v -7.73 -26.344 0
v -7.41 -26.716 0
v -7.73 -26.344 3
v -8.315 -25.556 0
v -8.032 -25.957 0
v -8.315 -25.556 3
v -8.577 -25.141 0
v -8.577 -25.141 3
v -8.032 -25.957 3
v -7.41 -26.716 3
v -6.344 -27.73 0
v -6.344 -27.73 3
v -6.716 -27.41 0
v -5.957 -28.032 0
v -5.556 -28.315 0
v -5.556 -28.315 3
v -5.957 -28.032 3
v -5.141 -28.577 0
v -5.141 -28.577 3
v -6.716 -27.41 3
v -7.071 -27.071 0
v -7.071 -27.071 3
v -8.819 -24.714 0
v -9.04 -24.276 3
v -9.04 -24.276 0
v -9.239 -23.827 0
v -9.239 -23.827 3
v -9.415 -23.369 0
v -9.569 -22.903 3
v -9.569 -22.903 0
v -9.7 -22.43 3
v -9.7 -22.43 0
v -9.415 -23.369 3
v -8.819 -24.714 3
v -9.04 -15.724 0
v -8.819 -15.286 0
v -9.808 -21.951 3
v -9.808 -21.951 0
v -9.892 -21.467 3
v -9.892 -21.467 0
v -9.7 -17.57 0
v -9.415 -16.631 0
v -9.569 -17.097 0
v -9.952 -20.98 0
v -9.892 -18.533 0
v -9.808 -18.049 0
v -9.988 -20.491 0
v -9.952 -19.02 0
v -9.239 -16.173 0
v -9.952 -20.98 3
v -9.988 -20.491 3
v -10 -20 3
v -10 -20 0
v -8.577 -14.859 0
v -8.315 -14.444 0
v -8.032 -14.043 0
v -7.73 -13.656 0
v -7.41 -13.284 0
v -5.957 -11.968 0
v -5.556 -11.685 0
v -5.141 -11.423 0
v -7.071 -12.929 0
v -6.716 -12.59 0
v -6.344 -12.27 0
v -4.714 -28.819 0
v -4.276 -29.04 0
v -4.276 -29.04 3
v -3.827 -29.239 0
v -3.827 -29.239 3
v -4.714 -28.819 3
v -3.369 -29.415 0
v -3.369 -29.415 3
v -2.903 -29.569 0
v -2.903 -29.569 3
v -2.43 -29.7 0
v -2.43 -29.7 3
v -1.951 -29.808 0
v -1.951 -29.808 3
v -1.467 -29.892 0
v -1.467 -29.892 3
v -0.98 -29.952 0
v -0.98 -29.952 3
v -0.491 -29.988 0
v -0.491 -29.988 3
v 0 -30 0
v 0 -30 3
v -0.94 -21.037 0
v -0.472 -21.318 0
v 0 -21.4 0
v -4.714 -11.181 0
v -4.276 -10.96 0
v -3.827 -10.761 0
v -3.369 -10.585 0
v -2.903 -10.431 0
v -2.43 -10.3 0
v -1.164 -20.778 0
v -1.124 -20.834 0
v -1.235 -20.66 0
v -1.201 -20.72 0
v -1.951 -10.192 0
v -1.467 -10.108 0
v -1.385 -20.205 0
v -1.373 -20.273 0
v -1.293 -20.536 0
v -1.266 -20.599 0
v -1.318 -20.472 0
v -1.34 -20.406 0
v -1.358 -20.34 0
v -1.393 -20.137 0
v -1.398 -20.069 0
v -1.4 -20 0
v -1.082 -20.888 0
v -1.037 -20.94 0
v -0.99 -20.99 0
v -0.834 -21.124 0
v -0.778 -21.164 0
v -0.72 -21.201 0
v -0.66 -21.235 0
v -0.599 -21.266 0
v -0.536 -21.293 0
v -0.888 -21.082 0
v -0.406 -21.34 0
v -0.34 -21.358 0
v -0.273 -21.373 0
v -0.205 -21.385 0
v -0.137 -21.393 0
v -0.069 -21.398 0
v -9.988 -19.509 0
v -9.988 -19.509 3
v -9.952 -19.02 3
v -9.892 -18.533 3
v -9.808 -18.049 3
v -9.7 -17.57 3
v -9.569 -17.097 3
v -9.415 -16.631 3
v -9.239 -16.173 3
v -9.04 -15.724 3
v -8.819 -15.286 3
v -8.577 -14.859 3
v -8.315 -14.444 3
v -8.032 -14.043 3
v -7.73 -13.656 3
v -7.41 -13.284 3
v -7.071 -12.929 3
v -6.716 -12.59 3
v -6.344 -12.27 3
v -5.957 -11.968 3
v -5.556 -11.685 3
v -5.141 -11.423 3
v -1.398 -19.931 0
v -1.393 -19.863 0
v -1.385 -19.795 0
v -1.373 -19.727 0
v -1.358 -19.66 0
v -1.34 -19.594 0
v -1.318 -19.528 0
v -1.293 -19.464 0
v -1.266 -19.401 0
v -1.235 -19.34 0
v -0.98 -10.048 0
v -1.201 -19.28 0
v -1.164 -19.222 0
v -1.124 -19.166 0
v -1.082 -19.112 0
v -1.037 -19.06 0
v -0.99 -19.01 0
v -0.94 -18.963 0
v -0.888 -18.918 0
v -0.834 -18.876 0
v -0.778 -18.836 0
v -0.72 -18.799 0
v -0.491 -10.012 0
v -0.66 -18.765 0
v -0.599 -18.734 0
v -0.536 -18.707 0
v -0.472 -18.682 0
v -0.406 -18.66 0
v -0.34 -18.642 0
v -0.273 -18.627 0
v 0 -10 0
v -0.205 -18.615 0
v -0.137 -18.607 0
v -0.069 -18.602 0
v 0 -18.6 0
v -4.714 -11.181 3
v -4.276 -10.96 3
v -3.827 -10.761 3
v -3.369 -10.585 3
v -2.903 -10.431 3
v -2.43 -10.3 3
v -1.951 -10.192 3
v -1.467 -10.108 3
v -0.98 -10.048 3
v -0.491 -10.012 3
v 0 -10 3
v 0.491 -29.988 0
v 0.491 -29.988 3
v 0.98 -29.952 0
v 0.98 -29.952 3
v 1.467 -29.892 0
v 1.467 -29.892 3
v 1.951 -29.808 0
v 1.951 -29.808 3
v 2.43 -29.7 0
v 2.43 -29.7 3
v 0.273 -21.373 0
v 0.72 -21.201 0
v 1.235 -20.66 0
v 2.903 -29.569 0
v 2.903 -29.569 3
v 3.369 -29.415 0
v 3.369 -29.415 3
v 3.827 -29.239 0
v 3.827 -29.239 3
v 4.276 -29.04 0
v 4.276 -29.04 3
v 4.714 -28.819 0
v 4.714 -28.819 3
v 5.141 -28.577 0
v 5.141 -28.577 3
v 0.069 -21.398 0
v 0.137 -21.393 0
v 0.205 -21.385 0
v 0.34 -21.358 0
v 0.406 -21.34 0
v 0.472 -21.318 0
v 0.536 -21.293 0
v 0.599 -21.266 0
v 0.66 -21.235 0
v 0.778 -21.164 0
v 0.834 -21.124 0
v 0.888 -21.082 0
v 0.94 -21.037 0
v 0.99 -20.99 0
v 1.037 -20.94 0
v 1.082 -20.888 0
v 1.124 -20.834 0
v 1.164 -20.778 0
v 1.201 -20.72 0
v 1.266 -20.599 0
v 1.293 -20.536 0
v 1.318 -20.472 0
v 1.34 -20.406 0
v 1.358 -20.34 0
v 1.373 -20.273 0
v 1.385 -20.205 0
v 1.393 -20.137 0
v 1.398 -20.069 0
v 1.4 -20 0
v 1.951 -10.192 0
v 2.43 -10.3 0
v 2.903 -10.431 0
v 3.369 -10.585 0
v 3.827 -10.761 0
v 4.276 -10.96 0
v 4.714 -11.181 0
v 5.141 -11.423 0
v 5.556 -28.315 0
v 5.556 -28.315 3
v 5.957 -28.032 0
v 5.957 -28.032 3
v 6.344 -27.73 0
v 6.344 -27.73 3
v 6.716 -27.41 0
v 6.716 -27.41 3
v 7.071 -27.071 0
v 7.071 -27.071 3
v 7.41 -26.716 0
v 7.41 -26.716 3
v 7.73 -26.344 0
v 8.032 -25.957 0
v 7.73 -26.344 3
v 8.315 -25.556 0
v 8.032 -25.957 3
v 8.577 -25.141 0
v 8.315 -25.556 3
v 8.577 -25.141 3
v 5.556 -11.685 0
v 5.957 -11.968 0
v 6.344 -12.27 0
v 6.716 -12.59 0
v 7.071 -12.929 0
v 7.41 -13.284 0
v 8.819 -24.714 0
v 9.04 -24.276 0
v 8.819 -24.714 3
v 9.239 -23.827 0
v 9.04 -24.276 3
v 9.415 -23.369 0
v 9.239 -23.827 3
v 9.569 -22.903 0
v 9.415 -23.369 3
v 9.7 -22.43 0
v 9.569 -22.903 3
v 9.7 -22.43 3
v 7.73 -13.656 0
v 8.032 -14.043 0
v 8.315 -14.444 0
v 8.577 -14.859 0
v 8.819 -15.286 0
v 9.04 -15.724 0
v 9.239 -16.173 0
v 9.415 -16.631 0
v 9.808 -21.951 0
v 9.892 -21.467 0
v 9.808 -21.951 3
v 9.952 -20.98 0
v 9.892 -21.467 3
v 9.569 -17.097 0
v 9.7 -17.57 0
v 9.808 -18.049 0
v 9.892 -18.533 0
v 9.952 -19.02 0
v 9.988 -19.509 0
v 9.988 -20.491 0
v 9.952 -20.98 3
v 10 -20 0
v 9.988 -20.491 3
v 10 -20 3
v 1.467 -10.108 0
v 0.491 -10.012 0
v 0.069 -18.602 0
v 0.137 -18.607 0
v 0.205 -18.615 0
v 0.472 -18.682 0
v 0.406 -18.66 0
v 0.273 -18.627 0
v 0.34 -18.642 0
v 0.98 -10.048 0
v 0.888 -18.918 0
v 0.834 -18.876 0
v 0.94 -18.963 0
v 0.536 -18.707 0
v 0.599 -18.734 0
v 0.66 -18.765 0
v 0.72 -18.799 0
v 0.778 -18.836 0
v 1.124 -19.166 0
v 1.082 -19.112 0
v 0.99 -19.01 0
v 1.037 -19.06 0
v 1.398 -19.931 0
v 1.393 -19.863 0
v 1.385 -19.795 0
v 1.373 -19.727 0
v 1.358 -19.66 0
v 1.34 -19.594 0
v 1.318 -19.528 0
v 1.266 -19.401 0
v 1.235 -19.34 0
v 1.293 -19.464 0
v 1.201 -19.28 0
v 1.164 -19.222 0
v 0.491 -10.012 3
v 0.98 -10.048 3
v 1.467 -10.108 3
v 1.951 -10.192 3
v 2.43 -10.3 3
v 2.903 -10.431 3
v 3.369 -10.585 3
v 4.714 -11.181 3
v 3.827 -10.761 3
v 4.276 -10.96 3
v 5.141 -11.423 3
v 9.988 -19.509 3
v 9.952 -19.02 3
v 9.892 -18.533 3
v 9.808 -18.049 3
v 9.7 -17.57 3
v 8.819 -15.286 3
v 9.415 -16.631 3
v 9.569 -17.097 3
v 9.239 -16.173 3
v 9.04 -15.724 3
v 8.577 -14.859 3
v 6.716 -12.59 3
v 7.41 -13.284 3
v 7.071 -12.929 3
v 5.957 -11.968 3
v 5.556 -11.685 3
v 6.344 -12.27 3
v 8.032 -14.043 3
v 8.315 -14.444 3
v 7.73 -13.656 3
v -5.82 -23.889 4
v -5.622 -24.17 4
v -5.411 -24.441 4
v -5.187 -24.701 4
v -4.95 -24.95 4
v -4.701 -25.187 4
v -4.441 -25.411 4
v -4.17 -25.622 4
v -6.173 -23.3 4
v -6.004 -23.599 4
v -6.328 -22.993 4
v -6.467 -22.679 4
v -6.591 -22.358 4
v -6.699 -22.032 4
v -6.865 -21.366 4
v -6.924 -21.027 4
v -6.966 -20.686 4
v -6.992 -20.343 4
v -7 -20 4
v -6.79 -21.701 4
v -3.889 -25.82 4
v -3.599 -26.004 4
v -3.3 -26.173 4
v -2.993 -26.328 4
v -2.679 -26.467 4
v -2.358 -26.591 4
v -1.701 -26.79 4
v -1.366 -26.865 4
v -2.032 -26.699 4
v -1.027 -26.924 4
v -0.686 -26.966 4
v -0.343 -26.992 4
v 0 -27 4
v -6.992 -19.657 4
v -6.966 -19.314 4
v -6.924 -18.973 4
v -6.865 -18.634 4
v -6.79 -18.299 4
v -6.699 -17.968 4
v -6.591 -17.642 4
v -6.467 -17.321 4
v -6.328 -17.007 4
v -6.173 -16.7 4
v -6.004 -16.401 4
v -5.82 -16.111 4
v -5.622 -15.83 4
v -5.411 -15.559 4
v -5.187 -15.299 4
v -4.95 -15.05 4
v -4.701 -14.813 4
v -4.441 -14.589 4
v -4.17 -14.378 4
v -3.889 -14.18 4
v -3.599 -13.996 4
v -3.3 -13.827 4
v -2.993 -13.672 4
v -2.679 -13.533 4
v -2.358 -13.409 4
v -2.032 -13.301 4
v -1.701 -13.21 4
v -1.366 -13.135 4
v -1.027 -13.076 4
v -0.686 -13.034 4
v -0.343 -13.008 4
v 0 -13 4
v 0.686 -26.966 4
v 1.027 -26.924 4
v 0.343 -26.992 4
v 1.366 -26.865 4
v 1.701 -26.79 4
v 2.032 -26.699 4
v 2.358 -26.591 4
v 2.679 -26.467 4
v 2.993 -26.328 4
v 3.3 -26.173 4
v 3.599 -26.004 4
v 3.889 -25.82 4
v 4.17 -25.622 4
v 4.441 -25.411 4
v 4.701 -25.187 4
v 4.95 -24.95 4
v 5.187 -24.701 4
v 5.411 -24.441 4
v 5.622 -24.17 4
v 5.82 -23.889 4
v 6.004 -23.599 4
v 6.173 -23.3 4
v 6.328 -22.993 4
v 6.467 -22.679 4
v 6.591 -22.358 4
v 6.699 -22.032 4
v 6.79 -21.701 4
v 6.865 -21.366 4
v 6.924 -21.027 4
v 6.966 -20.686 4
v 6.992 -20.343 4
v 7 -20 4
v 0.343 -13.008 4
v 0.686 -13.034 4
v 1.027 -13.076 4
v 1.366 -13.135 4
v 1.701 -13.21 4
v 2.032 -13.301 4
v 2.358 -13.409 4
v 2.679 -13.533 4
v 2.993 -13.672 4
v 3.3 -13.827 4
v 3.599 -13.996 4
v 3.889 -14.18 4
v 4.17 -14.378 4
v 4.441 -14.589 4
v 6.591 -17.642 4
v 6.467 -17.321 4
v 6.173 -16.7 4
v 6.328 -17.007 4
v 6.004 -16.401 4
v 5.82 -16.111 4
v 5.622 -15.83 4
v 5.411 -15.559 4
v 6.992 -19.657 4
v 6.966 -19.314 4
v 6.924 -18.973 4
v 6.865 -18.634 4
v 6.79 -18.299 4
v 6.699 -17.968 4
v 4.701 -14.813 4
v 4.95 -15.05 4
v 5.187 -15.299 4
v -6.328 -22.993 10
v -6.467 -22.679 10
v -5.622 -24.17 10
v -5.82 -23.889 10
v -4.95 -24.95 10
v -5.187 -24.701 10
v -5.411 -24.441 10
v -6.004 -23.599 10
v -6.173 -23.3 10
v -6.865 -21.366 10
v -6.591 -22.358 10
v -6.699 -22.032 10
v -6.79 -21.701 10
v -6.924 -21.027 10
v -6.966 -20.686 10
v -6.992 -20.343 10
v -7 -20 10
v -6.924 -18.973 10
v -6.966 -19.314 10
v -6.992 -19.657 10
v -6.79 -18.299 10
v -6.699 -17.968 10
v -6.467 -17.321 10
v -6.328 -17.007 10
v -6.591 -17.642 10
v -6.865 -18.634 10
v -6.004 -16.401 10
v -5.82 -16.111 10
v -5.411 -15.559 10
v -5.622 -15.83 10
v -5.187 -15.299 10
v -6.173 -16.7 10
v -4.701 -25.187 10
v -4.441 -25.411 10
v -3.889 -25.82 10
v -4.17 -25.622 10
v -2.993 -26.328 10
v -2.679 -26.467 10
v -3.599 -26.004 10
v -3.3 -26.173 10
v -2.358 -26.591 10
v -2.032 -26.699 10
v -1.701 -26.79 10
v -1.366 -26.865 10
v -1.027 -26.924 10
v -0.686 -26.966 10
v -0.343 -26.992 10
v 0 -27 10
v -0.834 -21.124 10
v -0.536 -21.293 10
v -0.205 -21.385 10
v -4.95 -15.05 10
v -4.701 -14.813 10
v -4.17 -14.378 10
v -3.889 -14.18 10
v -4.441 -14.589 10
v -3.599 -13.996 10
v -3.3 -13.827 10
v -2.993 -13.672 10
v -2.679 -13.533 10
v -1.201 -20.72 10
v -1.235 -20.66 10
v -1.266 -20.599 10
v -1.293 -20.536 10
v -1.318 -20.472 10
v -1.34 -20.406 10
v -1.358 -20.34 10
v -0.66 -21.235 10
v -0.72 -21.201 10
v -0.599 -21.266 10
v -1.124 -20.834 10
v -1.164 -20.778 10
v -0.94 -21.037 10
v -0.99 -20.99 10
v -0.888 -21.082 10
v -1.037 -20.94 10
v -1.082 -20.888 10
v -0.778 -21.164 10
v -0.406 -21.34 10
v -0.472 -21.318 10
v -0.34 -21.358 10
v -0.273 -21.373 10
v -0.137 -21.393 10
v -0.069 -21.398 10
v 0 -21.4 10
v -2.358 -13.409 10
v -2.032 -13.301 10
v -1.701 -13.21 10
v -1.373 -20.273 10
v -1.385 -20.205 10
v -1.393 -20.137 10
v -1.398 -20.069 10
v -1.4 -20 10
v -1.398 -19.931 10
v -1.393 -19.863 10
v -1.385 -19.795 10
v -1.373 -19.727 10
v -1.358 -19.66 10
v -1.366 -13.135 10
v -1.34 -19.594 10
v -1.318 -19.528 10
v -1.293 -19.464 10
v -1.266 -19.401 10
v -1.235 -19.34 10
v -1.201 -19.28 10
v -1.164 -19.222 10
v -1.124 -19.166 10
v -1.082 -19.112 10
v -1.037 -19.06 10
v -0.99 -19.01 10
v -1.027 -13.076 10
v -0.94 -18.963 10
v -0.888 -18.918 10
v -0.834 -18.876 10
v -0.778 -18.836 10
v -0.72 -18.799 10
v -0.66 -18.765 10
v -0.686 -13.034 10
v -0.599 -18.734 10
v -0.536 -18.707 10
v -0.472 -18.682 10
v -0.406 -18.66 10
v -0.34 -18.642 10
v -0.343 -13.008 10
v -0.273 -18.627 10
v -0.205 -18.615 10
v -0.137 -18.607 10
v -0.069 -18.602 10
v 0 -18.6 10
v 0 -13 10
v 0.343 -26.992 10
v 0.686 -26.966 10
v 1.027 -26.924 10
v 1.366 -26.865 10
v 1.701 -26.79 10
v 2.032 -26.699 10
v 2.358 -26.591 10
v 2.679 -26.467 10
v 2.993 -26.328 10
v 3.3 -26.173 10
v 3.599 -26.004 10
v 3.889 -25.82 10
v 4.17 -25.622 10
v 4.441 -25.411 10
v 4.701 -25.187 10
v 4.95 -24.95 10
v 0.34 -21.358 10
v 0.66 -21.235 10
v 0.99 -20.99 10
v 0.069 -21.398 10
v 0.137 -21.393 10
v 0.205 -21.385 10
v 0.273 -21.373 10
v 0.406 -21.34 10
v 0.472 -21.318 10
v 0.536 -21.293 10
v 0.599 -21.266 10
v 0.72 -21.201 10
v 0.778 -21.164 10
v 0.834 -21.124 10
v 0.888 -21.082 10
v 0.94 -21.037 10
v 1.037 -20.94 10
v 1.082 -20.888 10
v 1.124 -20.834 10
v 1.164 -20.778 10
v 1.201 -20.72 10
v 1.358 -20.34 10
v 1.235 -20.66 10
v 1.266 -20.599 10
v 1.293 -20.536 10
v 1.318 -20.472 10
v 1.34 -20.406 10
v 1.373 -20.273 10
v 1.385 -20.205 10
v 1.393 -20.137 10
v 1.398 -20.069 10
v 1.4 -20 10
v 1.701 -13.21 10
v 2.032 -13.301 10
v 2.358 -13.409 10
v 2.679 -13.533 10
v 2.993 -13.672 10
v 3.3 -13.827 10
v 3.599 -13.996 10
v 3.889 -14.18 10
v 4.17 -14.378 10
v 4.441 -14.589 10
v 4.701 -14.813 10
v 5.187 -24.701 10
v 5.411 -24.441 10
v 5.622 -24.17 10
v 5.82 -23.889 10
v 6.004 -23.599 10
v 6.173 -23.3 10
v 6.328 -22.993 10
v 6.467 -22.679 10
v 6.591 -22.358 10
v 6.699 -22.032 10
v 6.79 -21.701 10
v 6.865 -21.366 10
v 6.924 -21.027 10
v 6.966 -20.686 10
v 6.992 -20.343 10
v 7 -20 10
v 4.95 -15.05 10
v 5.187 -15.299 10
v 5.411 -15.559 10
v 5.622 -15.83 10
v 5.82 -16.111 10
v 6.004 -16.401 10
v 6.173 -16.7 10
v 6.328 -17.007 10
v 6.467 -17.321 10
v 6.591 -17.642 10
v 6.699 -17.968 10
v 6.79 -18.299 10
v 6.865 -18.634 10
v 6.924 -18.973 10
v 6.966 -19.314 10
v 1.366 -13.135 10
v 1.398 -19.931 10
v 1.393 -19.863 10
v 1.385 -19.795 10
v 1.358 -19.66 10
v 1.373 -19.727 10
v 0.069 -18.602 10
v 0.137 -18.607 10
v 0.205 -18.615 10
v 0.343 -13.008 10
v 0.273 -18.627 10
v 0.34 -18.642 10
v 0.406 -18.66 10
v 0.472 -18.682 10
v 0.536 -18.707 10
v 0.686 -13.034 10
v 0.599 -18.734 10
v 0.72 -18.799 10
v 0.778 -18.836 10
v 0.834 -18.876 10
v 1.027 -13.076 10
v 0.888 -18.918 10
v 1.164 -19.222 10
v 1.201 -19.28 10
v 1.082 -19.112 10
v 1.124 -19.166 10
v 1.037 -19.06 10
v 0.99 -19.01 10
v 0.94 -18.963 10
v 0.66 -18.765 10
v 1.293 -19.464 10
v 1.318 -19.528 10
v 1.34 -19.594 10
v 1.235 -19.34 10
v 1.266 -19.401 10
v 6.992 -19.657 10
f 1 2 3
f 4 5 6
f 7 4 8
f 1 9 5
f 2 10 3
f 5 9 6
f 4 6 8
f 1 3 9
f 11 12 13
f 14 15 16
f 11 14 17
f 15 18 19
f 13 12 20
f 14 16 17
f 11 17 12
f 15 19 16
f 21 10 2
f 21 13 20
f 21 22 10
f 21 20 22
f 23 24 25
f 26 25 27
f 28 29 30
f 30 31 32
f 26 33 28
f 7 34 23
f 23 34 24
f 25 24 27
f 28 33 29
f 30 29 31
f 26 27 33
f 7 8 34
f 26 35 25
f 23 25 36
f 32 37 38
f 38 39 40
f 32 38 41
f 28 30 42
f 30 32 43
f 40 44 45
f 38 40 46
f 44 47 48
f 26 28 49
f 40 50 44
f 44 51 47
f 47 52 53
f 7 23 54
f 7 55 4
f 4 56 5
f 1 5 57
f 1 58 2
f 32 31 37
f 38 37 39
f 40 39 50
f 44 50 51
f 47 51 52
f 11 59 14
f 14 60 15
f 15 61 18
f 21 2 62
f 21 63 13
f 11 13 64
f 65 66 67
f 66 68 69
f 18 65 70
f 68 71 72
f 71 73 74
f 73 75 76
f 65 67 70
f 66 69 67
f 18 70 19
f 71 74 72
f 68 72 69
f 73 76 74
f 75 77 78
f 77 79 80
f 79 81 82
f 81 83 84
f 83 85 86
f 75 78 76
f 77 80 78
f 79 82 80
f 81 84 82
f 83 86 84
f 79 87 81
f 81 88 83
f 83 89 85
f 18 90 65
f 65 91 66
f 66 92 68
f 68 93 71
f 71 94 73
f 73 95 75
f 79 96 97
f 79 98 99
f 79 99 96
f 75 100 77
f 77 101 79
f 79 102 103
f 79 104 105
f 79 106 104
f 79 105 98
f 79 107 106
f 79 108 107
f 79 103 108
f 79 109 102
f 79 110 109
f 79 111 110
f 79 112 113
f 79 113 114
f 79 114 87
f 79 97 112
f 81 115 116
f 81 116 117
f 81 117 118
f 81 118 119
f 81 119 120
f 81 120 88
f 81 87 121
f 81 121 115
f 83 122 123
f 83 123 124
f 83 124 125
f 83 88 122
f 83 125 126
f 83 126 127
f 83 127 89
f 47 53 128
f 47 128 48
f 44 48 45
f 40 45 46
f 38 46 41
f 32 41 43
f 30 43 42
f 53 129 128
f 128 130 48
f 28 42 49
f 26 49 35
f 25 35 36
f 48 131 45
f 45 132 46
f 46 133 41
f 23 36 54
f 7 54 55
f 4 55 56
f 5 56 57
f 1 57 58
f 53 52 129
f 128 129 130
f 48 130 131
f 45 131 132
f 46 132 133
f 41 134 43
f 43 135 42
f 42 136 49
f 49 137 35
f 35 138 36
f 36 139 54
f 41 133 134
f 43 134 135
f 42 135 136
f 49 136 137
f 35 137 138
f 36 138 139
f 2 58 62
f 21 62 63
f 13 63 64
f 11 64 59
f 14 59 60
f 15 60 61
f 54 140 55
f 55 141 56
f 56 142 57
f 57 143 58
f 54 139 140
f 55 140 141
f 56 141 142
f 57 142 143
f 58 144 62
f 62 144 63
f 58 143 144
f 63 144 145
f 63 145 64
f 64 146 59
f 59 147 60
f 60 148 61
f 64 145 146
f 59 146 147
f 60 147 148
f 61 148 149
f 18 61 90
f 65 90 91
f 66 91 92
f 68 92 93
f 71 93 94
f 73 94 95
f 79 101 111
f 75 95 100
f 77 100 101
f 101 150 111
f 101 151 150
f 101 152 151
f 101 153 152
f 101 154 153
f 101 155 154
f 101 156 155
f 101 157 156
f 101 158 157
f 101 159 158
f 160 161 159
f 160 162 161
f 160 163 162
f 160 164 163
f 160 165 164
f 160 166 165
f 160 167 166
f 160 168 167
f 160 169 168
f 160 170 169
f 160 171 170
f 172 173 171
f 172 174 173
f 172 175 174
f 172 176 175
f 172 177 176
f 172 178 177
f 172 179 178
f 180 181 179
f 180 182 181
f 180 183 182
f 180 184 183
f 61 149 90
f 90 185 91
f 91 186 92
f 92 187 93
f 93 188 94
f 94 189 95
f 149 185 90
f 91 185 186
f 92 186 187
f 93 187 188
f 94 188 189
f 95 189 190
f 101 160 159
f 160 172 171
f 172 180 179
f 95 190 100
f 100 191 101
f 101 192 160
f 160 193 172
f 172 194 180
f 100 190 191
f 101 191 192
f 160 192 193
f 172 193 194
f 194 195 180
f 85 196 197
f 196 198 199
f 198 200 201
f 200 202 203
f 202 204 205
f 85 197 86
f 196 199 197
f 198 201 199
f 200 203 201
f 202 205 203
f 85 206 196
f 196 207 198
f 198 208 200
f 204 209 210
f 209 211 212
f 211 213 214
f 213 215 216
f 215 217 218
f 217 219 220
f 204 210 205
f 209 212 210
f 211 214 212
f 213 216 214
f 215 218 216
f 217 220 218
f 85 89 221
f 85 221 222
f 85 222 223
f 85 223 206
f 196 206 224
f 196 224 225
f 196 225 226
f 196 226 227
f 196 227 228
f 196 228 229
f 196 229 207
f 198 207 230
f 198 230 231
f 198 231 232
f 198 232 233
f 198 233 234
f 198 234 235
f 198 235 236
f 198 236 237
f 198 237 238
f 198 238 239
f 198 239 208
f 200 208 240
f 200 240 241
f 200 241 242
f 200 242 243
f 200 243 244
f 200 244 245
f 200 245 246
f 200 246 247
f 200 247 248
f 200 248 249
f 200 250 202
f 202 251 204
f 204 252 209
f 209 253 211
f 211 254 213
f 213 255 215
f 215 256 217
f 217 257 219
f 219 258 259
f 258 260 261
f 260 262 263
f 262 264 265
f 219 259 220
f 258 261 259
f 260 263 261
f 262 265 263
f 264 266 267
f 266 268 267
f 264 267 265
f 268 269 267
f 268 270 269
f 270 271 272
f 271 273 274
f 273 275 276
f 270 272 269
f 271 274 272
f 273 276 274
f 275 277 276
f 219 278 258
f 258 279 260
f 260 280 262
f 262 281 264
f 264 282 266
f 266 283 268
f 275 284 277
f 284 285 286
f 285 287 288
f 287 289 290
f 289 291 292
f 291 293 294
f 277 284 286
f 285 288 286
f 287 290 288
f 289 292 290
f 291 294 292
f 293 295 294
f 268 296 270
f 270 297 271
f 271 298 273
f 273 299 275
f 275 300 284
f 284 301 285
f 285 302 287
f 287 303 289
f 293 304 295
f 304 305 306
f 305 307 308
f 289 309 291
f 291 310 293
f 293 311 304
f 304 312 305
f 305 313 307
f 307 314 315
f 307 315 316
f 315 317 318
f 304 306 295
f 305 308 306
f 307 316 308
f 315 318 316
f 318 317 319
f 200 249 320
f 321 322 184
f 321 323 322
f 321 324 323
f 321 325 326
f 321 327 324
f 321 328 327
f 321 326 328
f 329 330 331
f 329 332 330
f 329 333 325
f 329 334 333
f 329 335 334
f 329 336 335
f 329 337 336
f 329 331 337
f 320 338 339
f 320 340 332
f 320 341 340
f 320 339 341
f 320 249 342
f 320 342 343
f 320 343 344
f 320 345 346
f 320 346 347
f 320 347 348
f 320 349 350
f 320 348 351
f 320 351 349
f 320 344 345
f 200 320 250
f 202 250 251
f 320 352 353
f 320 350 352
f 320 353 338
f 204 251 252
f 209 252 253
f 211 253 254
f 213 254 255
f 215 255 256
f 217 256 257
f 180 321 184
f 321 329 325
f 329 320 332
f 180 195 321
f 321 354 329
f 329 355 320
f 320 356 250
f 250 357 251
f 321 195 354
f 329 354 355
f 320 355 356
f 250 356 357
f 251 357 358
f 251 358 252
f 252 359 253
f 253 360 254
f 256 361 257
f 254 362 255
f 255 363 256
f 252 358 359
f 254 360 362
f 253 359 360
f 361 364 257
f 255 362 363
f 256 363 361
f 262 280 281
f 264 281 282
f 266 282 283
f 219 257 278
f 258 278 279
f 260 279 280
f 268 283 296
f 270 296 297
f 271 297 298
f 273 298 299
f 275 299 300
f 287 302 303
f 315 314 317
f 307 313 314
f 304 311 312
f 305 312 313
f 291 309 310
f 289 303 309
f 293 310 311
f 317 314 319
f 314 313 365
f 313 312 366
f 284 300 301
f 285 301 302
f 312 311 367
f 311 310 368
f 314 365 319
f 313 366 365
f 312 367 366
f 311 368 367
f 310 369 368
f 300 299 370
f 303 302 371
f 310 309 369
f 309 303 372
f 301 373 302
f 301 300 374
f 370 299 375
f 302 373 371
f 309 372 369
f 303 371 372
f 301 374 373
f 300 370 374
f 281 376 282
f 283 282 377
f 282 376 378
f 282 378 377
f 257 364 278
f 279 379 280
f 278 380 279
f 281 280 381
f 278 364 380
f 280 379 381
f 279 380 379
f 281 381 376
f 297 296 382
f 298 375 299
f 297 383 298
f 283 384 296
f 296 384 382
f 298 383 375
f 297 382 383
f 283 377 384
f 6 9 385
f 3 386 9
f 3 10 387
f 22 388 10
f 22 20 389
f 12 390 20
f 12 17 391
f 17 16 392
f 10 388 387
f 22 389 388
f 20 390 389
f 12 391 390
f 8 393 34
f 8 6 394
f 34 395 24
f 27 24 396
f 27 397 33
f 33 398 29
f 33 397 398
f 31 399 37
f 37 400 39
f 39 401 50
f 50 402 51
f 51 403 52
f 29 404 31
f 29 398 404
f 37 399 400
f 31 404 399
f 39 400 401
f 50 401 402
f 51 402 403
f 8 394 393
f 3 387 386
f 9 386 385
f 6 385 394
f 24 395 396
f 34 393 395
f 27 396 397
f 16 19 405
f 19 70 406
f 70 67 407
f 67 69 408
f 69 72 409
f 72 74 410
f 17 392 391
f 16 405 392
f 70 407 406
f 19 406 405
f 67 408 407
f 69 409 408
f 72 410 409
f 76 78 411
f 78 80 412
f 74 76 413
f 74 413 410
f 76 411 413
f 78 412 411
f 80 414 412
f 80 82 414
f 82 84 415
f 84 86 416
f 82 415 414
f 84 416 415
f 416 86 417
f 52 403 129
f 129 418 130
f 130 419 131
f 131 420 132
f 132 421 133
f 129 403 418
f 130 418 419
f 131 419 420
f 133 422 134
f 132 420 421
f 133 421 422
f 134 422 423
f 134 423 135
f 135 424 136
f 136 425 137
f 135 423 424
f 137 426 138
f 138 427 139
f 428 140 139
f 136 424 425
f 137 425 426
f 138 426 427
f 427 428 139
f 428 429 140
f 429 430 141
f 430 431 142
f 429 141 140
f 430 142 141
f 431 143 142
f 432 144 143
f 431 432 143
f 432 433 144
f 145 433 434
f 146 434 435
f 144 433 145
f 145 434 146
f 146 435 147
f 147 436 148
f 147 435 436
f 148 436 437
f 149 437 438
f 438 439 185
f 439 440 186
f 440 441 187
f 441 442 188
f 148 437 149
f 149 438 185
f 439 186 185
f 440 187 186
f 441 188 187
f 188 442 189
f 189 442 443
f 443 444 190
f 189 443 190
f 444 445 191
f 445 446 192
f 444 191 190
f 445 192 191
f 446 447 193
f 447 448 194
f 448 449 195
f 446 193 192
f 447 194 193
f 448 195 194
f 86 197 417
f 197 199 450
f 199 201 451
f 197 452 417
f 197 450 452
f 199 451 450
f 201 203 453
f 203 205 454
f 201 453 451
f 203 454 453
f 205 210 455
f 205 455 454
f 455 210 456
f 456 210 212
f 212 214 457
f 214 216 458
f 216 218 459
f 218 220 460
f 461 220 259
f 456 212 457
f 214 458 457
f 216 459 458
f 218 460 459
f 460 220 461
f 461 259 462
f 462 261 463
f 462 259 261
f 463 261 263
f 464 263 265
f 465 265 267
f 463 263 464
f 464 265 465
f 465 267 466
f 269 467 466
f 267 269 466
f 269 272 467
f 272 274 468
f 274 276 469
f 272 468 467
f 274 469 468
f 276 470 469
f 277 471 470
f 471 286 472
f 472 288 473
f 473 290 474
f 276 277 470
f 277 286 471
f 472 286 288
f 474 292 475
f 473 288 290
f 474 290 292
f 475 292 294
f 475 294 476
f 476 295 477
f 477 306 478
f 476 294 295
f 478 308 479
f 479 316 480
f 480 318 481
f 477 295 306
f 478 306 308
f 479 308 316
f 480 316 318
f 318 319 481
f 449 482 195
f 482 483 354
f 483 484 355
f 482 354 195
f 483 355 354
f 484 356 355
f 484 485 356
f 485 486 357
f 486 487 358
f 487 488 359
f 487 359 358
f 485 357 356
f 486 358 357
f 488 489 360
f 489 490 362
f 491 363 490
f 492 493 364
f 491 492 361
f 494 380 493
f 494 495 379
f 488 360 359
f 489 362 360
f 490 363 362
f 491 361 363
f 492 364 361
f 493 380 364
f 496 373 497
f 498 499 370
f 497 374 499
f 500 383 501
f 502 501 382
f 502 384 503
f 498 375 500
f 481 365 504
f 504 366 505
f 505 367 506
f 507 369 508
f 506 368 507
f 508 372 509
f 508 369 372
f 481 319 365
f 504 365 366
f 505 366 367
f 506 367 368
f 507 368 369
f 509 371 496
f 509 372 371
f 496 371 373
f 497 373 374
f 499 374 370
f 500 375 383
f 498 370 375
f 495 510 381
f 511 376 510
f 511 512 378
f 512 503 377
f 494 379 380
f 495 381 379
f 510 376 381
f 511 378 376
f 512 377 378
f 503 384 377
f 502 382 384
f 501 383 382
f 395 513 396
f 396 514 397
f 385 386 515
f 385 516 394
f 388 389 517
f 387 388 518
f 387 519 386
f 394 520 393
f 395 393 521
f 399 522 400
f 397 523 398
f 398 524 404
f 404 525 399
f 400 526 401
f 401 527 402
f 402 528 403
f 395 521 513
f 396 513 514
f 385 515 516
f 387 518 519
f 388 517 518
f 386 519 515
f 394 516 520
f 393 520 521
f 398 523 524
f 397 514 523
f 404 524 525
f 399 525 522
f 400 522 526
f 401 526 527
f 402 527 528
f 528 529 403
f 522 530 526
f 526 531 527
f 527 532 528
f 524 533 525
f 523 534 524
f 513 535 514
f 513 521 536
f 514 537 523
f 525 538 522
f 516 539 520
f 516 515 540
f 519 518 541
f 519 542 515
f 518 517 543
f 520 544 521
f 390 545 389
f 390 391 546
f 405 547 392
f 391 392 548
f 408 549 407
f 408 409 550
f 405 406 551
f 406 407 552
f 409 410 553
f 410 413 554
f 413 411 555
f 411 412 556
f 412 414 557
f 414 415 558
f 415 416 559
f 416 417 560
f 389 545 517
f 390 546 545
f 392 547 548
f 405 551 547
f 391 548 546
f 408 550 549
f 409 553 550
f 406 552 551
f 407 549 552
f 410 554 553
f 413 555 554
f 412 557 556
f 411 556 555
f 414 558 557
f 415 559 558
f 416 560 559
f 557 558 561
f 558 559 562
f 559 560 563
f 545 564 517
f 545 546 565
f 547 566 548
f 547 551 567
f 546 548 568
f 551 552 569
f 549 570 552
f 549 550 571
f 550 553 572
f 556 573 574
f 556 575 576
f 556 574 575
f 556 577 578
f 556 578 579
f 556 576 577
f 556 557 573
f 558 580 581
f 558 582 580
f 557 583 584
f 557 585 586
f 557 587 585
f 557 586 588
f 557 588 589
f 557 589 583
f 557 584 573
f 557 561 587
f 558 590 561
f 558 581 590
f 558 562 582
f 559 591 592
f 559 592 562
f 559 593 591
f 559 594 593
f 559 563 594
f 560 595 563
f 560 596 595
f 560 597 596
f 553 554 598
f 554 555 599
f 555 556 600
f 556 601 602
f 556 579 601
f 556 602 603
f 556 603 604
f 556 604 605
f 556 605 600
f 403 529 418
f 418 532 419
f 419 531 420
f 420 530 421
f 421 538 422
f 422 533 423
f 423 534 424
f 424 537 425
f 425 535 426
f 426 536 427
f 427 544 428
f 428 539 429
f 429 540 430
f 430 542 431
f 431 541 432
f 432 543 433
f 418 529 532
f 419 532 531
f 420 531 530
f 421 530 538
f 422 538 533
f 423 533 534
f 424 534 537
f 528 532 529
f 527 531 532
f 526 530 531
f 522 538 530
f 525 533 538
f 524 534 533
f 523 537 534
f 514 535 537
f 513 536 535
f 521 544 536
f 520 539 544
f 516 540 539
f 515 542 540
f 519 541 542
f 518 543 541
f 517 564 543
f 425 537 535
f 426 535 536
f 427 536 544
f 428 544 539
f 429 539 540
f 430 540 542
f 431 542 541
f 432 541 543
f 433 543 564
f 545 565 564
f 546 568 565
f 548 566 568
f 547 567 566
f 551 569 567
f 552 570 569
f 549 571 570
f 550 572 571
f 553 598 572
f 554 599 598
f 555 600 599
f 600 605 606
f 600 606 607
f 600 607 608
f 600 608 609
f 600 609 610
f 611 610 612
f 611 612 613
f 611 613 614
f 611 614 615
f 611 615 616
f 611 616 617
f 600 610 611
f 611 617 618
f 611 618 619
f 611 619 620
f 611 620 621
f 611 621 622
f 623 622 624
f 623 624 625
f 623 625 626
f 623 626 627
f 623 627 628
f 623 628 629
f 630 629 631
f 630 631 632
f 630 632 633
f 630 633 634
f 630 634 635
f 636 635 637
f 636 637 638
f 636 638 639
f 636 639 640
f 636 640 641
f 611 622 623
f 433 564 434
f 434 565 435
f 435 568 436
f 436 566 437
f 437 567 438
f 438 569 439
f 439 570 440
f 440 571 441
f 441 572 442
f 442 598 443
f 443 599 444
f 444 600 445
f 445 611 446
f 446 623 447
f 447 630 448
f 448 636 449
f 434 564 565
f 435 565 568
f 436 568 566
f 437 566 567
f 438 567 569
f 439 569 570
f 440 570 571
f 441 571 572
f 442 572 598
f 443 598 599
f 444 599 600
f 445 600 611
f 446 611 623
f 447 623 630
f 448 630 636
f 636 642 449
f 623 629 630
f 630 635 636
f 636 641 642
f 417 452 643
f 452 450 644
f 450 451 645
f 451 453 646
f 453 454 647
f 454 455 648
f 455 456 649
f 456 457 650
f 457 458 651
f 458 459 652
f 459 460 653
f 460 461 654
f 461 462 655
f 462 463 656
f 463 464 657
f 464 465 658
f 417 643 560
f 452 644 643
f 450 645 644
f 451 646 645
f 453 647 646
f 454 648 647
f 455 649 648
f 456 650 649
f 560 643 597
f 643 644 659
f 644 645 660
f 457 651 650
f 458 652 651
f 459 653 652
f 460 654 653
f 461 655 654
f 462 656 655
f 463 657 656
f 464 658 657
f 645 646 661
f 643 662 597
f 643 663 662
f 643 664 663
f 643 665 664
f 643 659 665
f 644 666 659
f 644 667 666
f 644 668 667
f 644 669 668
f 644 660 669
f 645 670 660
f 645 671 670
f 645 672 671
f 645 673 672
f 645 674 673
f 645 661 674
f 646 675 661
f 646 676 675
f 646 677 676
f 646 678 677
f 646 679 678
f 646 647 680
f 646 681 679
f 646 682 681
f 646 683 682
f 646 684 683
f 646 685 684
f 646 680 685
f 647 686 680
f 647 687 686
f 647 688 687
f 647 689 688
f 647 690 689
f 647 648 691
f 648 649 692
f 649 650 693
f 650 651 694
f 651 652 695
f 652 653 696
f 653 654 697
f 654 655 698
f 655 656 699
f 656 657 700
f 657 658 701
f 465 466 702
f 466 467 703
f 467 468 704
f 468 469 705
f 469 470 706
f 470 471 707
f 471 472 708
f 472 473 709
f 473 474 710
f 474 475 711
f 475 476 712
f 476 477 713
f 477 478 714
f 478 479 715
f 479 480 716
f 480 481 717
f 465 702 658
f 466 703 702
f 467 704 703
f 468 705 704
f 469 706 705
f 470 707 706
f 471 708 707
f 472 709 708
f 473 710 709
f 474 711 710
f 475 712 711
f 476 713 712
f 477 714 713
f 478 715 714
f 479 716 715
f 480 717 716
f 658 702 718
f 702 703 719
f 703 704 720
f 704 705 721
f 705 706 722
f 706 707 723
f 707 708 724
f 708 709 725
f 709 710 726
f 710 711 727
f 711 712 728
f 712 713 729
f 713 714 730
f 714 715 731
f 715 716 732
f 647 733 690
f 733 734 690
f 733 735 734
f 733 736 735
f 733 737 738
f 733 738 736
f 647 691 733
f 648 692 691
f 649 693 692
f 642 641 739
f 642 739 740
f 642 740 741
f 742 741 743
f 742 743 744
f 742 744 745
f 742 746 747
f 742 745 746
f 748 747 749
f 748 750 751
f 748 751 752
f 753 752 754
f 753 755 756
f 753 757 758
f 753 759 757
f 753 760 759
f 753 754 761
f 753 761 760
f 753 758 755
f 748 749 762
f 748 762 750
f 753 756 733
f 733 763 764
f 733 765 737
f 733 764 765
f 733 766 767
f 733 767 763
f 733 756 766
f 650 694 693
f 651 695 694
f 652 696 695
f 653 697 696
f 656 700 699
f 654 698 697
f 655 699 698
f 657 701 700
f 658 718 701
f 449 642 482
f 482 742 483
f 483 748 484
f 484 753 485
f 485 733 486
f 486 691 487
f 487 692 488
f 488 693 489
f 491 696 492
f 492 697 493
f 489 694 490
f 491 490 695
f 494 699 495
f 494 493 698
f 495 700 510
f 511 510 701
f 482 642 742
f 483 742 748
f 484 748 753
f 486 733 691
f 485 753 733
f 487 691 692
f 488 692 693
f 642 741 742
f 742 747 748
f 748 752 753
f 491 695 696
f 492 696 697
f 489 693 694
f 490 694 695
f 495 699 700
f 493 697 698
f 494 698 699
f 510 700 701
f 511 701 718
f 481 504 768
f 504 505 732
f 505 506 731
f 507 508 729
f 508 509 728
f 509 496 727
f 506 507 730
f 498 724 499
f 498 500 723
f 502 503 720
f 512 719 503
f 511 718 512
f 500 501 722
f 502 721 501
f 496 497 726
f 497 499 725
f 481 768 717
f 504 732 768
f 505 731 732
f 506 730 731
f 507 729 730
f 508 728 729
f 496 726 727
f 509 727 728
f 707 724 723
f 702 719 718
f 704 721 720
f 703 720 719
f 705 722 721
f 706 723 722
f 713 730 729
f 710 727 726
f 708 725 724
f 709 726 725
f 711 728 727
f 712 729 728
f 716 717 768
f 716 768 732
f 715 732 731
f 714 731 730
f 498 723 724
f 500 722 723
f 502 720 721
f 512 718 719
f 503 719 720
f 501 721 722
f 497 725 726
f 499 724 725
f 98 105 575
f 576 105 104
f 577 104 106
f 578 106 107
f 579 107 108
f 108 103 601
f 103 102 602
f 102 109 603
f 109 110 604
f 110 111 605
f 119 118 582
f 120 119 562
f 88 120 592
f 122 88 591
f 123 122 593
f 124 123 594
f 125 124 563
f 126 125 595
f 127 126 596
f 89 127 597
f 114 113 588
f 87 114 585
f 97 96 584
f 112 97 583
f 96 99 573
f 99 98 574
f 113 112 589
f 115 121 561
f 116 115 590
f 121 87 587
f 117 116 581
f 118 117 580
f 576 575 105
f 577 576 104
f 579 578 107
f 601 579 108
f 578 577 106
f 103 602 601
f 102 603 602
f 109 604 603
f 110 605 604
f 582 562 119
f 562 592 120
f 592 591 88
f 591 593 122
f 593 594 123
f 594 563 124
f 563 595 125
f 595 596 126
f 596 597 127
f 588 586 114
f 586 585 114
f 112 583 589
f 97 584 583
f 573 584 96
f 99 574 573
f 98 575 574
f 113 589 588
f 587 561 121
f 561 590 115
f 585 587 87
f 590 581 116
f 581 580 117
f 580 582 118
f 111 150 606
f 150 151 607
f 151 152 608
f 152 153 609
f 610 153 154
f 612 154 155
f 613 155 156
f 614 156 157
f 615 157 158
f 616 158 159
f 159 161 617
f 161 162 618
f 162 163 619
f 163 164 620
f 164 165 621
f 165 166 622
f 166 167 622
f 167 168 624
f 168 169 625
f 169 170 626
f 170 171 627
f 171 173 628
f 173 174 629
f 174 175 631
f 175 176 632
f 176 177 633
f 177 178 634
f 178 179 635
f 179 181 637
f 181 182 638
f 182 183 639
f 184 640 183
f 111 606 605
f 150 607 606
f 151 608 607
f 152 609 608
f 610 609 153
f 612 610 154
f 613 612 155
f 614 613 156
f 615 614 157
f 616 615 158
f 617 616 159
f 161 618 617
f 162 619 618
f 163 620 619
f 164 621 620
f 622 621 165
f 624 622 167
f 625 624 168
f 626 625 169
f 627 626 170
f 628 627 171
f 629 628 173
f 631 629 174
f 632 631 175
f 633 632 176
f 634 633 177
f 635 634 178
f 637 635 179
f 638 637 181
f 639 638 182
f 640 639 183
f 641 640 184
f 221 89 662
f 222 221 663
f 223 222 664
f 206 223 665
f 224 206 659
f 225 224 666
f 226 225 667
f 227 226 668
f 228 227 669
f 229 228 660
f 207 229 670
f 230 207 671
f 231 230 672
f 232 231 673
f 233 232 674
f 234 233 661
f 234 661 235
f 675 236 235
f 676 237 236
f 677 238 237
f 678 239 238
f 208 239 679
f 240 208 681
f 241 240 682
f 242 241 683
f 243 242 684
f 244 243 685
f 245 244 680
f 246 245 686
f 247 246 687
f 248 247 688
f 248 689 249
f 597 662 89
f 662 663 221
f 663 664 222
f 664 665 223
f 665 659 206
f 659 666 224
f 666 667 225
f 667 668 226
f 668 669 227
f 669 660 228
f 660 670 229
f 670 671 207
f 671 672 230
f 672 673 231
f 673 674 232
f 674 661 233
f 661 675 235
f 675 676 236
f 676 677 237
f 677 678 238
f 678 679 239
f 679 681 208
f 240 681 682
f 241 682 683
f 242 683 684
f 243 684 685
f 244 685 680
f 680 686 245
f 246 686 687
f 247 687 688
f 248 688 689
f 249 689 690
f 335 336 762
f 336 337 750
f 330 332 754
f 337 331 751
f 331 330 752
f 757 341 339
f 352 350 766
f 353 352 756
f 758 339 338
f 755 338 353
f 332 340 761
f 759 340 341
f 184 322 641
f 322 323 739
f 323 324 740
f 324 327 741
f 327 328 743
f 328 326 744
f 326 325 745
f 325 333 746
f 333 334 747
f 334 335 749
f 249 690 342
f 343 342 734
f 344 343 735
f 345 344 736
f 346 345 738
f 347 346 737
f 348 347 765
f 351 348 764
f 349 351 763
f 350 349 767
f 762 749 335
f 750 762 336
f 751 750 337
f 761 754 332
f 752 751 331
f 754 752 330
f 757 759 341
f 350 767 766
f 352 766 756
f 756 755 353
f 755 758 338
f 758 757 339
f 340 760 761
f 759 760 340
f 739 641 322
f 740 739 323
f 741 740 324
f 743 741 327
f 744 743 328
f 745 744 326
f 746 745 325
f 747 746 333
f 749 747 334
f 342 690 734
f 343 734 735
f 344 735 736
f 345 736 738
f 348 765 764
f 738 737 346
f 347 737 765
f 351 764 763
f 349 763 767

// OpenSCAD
    
translate([0,-20,0])
difference() {
union() {
cylinder(d=20,h=3,$fn=128);
translate([0,0,3])
cylinder(d1=20,d2=14,h=1,$fn=128);
cylinder(d=14,h=10,$fn=128);
}
cylinder(d=2.8,h=10,$fn=128);
}
